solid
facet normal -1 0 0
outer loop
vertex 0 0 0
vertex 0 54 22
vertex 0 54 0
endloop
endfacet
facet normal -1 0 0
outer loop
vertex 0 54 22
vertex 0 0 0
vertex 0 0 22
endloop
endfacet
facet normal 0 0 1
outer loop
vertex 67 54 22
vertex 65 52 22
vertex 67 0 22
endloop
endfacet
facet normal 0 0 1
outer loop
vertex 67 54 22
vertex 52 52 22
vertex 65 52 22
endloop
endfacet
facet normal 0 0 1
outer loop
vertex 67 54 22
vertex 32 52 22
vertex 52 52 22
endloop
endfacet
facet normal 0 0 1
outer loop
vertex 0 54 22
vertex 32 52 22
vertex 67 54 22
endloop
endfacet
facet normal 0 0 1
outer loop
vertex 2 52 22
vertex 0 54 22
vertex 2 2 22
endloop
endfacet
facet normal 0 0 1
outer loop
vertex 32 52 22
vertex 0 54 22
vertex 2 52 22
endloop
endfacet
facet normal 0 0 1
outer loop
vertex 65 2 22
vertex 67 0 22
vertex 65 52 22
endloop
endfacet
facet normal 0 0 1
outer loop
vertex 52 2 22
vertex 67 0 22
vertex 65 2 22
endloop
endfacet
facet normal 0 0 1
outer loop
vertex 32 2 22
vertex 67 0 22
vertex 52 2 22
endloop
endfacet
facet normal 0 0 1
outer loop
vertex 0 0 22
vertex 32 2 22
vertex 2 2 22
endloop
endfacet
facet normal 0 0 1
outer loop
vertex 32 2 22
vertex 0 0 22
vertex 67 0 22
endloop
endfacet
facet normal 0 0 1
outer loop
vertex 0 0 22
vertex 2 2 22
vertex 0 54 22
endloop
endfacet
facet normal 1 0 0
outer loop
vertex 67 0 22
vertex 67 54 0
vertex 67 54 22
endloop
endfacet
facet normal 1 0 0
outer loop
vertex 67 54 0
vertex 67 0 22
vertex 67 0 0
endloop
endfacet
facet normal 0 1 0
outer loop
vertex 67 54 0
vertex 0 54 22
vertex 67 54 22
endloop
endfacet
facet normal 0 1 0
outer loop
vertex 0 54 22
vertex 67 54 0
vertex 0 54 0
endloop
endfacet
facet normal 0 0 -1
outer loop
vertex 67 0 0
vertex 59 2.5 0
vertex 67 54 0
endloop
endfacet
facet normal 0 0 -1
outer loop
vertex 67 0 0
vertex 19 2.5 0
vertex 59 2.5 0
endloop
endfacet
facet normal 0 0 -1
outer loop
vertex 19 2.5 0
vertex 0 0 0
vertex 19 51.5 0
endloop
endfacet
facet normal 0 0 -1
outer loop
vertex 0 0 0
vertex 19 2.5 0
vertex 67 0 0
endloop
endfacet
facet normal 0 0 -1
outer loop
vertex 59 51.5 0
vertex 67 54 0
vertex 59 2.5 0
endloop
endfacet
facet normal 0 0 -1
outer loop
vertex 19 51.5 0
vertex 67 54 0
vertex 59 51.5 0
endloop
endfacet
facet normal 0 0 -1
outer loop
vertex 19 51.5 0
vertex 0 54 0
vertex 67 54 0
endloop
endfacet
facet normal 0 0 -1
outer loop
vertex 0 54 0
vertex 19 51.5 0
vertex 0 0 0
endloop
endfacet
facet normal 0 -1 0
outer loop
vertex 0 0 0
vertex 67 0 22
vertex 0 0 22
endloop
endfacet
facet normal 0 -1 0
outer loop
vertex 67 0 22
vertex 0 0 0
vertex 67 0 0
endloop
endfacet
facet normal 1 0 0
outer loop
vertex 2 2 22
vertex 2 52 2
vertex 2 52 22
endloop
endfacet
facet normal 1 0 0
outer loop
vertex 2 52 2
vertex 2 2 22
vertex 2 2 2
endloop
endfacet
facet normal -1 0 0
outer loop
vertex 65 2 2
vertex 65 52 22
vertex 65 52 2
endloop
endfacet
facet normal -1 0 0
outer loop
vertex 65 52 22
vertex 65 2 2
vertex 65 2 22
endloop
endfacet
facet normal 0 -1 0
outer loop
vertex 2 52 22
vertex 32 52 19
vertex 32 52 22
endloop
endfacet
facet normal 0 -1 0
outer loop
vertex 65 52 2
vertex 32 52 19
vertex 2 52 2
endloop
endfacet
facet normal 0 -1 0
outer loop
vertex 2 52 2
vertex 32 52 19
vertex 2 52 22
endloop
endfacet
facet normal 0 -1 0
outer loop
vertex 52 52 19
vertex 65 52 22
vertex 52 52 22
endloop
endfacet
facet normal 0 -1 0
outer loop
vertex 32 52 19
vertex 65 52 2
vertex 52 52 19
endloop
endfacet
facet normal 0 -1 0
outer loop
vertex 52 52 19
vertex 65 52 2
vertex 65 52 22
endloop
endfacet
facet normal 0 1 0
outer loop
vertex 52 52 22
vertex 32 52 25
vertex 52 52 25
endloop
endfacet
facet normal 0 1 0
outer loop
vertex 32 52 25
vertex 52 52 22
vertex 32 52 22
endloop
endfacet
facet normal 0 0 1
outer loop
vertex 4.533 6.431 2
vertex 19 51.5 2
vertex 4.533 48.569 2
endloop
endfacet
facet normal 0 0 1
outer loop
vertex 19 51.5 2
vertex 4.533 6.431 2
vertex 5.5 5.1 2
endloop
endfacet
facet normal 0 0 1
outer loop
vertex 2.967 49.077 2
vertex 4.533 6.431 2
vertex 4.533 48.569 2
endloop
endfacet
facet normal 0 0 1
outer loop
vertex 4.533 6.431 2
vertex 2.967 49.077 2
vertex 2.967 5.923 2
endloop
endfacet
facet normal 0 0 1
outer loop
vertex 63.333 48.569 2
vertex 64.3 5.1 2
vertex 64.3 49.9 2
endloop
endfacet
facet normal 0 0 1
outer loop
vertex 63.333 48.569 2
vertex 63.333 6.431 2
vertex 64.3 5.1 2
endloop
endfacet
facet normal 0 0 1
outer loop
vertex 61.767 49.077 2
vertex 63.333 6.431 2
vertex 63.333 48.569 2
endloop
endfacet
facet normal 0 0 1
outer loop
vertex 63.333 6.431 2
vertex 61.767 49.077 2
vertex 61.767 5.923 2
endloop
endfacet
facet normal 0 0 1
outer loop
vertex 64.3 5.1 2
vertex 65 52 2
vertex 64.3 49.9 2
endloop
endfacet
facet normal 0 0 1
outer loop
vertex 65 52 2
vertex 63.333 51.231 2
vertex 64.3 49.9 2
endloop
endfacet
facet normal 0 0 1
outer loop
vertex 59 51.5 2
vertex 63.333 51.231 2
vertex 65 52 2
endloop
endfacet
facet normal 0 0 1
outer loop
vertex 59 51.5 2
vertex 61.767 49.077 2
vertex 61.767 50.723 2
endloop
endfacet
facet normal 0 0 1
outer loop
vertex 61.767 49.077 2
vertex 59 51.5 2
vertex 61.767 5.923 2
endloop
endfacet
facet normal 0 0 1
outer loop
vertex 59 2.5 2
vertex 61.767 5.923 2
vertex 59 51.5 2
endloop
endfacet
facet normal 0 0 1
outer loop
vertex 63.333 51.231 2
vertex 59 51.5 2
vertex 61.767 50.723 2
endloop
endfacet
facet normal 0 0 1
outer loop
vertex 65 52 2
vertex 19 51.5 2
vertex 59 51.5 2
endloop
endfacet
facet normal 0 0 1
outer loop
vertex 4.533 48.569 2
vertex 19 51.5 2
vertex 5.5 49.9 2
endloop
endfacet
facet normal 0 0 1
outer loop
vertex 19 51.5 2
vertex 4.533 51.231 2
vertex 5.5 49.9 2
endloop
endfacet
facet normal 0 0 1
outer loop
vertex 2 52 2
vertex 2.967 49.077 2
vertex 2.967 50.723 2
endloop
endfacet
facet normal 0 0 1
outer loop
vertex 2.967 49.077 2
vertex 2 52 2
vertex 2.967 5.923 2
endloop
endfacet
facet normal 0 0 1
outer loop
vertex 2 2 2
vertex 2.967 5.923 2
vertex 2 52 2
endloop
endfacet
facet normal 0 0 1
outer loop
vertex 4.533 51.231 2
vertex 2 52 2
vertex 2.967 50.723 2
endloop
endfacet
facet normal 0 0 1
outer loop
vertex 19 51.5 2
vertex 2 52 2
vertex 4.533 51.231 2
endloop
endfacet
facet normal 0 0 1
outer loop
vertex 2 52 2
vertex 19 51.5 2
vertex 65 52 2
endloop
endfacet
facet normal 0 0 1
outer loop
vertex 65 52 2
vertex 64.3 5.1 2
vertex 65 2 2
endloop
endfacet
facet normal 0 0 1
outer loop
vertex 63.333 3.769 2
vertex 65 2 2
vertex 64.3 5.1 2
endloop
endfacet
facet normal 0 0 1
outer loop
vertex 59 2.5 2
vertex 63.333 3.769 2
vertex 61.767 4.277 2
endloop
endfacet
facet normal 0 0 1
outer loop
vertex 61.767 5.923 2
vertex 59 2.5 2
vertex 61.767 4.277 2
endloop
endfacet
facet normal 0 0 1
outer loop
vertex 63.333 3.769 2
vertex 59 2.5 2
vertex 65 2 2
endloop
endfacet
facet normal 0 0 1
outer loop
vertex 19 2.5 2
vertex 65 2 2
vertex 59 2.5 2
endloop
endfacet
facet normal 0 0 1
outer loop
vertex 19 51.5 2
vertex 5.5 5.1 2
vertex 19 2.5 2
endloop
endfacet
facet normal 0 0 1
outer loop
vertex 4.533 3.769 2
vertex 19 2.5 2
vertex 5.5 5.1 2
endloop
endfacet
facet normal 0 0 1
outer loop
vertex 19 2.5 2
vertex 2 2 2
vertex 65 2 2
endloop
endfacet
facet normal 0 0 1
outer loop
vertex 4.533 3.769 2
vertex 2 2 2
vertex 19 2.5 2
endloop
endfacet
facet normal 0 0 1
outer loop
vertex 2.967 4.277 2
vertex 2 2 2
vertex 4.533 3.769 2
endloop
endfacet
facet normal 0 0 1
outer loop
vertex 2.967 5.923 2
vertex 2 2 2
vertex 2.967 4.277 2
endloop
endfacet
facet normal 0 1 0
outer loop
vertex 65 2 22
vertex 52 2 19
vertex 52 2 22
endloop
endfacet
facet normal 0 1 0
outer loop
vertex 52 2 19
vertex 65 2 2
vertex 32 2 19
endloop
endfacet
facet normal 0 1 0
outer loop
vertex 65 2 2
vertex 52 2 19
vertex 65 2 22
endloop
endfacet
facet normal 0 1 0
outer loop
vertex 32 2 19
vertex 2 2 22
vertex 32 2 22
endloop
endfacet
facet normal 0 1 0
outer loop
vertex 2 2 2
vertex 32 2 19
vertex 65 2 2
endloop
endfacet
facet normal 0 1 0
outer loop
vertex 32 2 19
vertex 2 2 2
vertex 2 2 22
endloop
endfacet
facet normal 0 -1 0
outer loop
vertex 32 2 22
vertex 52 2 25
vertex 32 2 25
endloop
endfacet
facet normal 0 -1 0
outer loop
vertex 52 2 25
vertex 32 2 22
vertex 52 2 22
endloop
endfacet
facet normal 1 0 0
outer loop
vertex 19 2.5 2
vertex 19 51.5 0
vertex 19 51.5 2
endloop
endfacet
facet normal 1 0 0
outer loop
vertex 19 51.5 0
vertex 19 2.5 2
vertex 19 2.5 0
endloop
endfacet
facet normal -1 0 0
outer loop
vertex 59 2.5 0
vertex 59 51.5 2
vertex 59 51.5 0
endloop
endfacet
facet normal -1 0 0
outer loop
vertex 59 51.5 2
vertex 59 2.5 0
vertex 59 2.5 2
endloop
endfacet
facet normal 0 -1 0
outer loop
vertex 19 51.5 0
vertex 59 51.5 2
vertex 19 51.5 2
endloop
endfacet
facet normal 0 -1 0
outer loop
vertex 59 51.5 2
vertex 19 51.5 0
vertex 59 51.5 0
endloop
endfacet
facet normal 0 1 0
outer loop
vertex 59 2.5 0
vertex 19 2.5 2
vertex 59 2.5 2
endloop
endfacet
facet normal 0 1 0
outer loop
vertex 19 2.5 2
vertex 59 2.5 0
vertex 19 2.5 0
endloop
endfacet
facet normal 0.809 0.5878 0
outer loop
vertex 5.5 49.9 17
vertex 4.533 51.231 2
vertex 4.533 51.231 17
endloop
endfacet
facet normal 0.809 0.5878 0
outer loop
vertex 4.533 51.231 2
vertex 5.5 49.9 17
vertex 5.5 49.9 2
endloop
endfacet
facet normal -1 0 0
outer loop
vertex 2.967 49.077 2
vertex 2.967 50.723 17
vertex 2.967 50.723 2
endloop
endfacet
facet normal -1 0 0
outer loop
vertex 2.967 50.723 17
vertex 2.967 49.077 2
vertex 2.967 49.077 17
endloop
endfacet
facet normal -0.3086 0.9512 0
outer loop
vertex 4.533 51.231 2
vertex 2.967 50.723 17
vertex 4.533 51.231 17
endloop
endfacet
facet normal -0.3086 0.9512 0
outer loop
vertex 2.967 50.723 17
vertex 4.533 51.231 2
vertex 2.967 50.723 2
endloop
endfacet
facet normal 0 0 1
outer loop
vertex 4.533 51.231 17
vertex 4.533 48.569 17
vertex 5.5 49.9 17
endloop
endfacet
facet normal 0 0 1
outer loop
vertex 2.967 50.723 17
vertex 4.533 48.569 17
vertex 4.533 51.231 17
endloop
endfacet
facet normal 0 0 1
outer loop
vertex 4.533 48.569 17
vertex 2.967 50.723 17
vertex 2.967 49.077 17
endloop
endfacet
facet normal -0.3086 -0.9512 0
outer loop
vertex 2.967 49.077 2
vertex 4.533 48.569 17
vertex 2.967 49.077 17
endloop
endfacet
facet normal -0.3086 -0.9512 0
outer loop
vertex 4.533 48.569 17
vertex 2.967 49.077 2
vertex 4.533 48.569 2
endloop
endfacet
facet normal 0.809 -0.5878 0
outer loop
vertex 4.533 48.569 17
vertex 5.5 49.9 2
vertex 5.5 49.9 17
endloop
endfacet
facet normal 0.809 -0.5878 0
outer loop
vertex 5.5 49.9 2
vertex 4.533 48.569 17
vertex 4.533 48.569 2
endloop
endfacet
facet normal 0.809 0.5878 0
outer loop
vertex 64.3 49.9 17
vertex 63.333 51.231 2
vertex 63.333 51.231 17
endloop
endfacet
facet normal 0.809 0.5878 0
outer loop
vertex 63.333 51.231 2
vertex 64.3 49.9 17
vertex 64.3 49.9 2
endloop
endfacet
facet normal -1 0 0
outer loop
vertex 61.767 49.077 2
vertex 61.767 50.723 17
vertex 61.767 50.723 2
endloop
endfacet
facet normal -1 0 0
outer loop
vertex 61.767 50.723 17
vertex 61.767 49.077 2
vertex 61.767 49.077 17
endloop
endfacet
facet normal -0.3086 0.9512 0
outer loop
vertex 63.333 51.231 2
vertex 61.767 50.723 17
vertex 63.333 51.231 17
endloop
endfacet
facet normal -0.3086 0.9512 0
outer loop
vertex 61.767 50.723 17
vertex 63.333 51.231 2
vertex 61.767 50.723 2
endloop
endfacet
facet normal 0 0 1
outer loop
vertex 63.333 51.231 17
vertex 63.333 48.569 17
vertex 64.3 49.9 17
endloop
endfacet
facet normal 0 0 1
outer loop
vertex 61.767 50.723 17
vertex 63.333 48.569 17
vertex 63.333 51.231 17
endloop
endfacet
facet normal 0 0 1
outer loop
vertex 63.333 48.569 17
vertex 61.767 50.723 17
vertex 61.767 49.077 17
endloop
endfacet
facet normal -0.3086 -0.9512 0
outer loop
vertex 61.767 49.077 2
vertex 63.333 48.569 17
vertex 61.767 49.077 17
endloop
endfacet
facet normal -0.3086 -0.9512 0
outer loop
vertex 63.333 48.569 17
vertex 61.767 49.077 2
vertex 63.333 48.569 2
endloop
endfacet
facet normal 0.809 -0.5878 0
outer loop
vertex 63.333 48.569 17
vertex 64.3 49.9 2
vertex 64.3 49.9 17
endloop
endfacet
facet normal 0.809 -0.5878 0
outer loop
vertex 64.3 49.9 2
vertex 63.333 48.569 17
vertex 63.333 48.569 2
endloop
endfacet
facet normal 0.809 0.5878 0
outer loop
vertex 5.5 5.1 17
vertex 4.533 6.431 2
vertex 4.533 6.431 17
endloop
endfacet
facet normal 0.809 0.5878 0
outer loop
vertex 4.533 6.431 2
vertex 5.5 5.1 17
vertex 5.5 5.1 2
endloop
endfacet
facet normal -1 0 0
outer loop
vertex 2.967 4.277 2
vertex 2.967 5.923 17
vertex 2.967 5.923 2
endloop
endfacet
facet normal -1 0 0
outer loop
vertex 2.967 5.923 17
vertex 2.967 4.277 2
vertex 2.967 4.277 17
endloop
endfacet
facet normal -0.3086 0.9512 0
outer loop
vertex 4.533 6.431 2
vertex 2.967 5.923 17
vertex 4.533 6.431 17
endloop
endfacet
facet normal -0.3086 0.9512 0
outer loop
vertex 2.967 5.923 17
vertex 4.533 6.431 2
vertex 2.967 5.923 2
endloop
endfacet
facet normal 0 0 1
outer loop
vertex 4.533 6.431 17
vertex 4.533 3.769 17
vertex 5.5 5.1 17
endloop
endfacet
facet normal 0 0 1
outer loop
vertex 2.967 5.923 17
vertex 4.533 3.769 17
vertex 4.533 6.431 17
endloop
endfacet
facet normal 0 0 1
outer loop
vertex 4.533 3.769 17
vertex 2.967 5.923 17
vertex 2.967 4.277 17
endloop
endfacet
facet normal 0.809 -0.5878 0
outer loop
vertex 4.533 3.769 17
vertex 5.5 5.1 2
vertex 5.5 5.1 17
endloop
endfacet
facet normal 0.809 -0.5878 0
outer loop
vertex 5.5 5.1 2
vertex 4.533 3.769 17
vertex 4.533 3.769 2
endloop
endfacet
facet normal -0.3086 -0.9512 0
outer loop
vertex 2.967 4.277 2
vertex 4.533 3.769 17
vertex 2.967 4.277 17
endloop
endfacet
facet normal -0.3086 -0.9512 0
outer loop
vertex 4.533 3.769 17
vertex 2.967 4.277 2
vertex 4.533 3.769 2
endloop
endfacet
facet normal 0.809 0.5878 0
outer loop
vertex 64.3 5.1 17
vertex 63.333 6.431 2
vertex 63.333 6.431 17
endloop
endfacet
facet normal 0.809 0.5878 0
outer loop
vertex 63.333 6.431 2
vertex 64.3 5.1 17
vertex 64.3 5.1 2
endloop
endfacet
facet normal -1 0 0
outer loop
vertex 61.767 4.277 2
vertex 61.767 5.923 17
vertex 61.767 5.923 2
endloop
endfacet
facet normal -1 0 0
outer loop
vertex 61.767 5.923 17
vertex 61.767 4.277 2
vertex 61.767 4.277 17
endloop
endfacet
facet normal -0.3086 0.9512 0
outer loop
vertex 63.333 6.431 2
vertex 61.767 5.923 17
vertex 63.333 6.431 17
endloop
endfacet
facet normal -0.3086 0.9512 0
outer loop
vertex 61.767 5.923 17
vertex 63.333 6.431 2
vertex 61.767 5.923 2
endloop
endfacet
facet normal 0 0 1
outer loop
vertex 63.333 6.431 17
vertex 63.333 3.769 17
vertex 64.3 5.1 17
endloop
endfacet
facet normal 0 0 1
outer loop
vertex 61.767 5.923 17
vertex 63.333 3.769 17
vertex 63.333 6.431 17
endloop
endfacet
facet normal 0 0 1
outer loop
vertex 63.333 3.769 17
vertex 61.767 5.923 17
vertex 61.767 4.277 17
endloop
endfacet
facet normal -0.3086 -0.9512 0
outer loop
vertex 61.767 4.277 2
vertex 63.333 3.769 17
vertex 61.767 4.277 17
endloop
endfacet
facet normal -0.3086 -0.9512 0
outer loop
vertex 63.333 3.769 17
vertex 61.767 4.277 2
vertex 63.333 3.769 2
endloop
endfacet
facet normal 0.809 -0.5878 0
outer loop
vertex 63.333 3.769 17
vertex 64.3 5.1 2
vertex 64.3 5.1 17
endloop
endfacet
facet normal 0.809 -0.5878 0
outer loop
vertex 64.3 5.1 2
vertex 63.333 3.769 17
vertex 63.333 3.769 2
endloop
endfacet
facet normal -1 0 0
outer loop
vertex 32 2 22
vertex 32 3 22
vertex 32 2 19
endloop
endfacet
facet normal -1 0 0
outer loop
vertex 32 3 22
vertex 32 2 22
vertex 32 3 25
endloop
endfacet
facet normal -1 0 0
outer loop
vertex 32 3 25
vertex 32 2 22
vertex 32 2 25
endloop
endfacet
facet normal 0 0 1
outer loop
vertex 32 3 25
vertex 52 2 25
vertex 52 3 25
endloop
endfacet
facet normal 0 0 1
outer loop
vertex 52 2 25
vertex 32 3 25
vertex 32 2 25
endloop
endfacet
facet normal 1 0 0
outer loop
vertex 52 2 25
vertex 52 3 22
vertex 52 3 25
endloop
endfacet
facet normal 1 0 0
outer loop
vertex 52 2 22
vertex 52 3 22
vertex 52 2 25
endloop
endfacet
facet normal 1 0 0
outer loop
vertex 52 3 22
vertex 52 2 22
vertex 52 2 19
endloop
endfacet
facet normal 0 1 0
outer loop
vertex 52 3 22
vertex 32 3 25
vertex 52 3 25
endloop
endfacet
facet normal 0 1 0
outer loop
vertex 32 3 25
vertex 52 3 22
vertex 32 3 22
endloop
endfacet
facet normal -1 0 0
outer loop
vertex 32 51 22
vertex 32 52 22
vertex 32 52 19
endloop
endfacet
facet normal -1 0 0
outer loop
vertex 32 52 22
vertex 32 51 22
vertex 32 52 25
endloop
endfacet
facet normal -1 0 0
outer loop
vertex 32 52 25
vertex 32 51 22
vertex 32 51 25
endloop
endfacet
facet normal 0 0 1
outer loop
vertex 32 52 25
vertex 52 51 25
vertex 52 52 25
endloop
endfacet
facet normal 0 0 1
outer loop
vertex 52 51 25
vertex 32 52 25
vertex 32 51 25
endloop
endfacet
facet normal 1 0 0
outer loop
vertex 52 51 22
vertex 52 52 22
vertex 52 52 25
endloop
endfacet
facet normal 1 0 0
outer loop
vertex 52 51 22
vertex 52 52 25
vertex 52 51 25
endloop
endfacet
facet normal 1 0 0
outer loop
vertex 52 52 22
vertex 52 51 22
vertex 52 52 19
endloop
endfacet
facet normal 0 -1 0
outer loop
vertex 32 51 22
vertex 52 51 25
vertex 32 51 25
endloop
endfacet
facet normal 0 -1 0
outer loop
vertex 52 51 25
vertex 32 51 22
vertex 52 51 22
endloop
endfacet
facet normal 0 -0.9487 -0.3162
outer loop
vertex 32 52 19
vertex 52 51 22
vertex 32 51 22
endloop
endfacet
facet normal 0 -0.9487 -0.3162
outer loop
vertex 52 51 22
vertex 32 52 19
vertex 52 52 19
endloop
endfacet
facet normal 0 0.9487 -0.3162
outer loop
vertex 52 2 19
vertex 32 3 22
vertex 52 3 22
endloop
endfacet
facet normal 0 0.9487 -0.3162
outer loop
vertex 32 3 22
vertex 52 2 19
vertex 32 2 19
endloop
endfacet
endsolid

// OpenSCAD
module esp32_case()
{
    // Dimensions (adjust as needed for your ESP32 model)
    sensor_length    = 62;
    sensor_width     = 49;  // mm
    sensor_offset    = 0.7;
    esp_board_width  = 52;
    esp_board_length = 30;
    wall_thickness   = 2;   // mm
    case_width       = esp_board_width + wall_thickness;       // mm
    case_length      = sensor_length + wall_thickness + 3;       // mm
    case_height      = 20;  // mm
    
    // Column size (adjust if needed)
    column_diameter  = 2.8; // mm
    column_height = 15;

    // Flange dimensions
    flange_thickness = 1;   // thickness in Y
    flange_height    = 3; 
    flange_length = 20;

    union() {
        //
        // 1) Main case shell
        //
        difference() {
            // Outer block
            cube([case_length, case_width, wall_thickness + case_height]);
            
            // Hollow interior
            translate([wall_thickness, wall_thickness, wall_thickness])
                cube([
                    case_length - 2*wall_thickness,
                    case_width  - 2*wall_thickness,
                    case_height
                ]);

            // Window on the base
            translate([
                17 + wall_thickness,
                (case_width - sensor_width) / 2,
                0
            ])
            cube([40, sensor_width, wall_thickness + 0.1]);
        }

// 4 support columns
xPositions = [
    wall_thickness + sensor_offset + 0.5*column_diameter,
    case_length - wall_thickness - sensor_offset - 0.5*column_diameter
];

yPositions = [
    case_width - wall_thickness - sensor_offset - 0.5*column_diameter,         // Front columns
    case_width - wall_thickness + sensor_offset + 0.5*column_diameter - sensor_width // Rear columns
];

for (xPos = xPositions)
    for (yPos = yPositions)
        translate([xPos, yPos, wall_thickness])
            cylinder(h = column_height, d = column_diameter);

        
            // 3) Short vertical flanges on the inside of the front & back walls
        //
        // Front flange
        translate([
            wall_thickness + esp_board_length,
            wall_thickness,
            wall_thickness + case_height
        ])
        cube([
            flange_length,                // length of flange in X
            flange_thickness,  // thickness in Y
            flange_height      // extends downward in Z
        ]);

        // Back flange
        translate([
            wall_thickness + esp_board_length,
            case_width - wall_thickness - flange_thickness,
            wall_thickness + case_height
        ])
        cube([
            flange_length,
            flange_thickness,
            flange_height
        ]);
        
       // connecter
       translate([
            wall_thickness + esp_board_length,
            case_width - wall_thickness,
            case_height-1
        ])
           rotate([0, -90, 180]) {
        linear_extrude(height = 20) {
            polygon(points = [
                [0, 0],
                [3, 0],
                [3, flange_thickness]
            ]);
            
        }
    }
           translate([
            wall_thickness + esp_board_length+ flange_length,
             wall_thickness,
            case_height-1
        ])
           rotate([0, -90, 0]) {
        linear_extrude(height = 20) {
            polygon(points = [
                [0, 0],
                [3, 0],
                [3, flange_thickness]
            ]);
            
        }
    }
    }
}

// Call the module
esp32_case();
